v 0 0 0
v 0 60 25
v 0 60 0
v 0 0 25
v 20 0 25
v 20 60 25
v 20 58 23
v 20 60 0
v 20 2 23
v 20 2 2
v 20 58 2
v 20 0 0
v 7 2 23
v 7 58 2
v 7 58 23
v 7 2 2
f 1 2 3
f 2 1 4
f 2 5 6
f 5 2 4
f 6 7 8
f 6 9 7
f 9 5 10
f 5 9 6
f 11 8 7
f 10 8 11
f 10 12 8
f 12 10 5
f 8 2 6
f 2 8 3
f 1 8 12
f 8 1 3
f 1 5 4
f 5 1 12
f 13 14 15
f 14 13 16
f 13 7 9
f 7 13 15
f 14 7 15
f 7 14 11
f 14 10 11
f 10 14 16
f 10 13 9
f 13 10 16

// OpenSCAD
module display(){
    //assume mm as measurement unit
    $fn=10;
    height = 20;
    width = 60;
    depth = 25;
    thick = 2;
    curvyInsert = 5;
    difference(){
        cube([height,width,depth]);
        translate([thick+curvyInsert,thick,thick])  cube([height-thick,width-thick*2,depth-thick*2]);
    }
}

    


display();
